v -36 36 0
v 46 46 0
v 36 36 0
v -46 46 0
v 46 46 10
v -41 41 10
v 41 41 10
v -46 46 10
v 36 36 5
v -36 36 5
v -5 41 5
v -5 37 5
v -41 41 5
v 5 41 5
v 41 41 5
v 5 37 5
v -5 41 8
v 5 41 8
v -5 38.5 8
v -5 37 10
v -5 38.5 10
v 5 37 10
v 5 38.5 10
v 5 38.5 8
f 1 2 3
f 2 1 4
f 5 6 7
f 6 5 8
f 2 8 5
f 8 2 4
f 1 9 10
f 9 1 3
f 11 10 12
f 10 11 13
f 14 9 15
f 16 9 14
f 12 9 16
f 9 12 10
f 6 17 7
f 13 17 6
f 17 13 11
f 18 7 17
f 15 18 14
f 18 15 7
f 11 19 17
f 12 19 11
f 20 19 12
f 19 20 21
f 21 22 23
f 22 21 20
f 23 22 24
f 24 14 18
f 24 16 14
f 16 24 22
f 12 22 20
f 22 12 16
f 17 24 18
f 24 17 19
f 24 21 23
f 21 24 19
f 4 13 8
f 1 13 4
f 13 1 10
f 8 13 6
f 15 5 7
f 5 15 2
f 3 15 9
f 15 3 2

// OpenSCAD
// file: local_modules/lcd.scad
LCD_X=76;
LCD_Y=1.5;
LCD_Z=138;
LCD_DISP_X=LCD_X - 1.5 * 2;
LCD_DISP_Z_OFFSET_FROM_BOTTOM=6;
LCD_DISP_Z=LCD_Z-LCD_DISP_Z_OFFSET_FROM_BOTTOM - 1.5;

module lcd(margin=0, draw_display_region=false) {
  translate([0, 0, LCD_Z/2]){
    cube(size=[LCD_X+margin, LCD_Y+margin, LCD_Z+margin], center=true);

    if(draw_display_region){
      translate([0, 0, -(LCD_Z - LCD_DISP_Z)/2 + LCD_DISP_Z_OFFSET_FROM_BOTTOM]) 
      color("green", 0.5)
      cube(size=[LCD_DISP_X, LCD_Y, LCD_DISP_Z], center=true);
    }
  }
}
// file: scad-utils/morphology.scad
// Copyright (c) 2013 Oskar Linde. All rights reserved.
// License: BSD
//
// This library contains basic 2D morphology operations
//
// outset(d=1)            - creates a polygon at an offset d outside a 2D shape
// inset(d=1)             - creates a polygon at an offset d inside a 2D shape
// fillet(r=1)            - adds fillets of radius r to all concave corners of a 2D shape
// rounding(r=1)          - adds rounding to all convex corners of a 2D shape
// shell(d,center=false)  - makes a shell of width d along the edge of a 2D shape
//                        - positive values of d places the shell on the outside
//                        - negative values of d places the shell on the inside
//                        - center=true and positive d places the shell centered on the edge

module outset(d=1) {
	// Bug workaround for older OpenSCAD versions
	if (version_num() < 20130424) render() outset_extruded(d) children();
	else minkowski() {
		circle(r=d);
		children();
	}
}

module outset_extruded(d=1) {
   projection(cut=true) minkowski() {
        cylinder(r=d);
        linear_extrude(center=true) children();
   }
}

module inset(d=1) {
	 render() inverse() outset(d=d) inverse() children();
}

module fillet(r=1) {
	inset(d=r) render() outset(d=r) children();
}

module rounding(r=1) {
	outset(d=r) inset(d=r) children();
}

module shell(d,center=false) {
	if (center && d > 0) {
		difference() {
			outset(d=d/2) children();
			inset(d=d/2) children();
		}
	}
	if (!center && d > 0) {
		difference() {
			outset(d=d) children();
			children();
		}
	}
	if (!center && d < 0) {
		difference() {
			children();
			inset(d=-d) children();
		}
	}
	if (d == 0) children();
}


// Below are for internal use only

module inverse() {
	difference() {
		square(1e5,center=true);
		children();
	}
}


// TEST CODE

use <mirror.scad>

module arrow(l=1,w=.6,t=0.15) {
	mirror_y() polygon([[0,0],[l,0],[l-w/2,w/2],[l-w/2-sqrt(2)*t,w/2],[l-t/2-sqrt(2)*t,t/2],[0,t/2]]);
}

module shape() {
	polygon([[0,0],[1,0],[1.5,1],[2.5,1],[2,-1],[0,-1]]);
}

if(0) assign($fn=32) {

	for (p = [0:10*3-1]) assign(o=floor(p/3)) {
		translate([(p%3)*2.5,-o*3]) {
			//%if (p % 3 == 1) translate([0,0,1]) shape();
			if (p % 3 == 0) shape();
			if (p % 3 == 1) translate([0.6,0]) arrow();
			if (p % 3 == 2) {
				if (o == 0) inset(d=0.3) shape();
				if (o == 1) outset(d=0.3) shape();
				if (o == 2) rounding(r=0.3) shape();
				if (o == 3) fillet(r=0.3) shape();
				if (o == 4) shell(d=0.3) shape();
				if (o == 5) shell(d=-0.3) shape();
				if (o == 6) shell(d=0.3,center=true) shape();
				if (o == 7) rounding(r=0.3) fillet(r=0.3) shape();
				if (o == 8) shell(d=0.3,center=true) fillet(r=0.3) rounding(r=0.3) shape();
				if (o == 9) shell(d=-0.3) fillet(r=0.3) rounding(r=0.3) shape();
			}
		}
	}
}
// file: scad-utils/mirror.scad
// Copyright (c) 2013 Oskar Linde. All rights reserved.
// License: BSD
//
// This library contains simple mirroring functions
//
// mirror_x()
// mirror_y()
// mirror_z()


module mirror_x() {
  union() {
    child();
    scale([-1,1,1]) child();
  }
}

module mirror_y() {
  union() {
    child();
    scale([1,-1,1]) child();
  }
}

module mirror_z() {
  union() {
    child();
    scale([1,1,-1]) child();
  }
}
// file: _kagedourou_top.scad
include <scad-utils/mirror.scad>
include <scad-utils/morphology.scad>

include <./local_modules/lcd.scad>


module lcd_for_top(){
  translate([0, KD_TOP_Y/2 - LCD_Y/2 - (KD_FRAME_INNER_T + 0.5), LCD_Z + KD_FRAME_T - 2]) 
  rotate([180, 0, 0]) 
  lcd(draw_display_region=true);
}

KD_FRAME_T=10;
KD_FRAME_INNER_T=5;

KD_TOP_X=LCD_X-2*2+KD_FRAME_T*2;
KD_TOP_Y=KD_TOP_X;
echo(str("KD_TOP_X=", KD_TOP_X));
echo(str("KD_TOP_Y=", KD_TOP_Y));

KD_TOP_DISP_HOLDER_X=10;
KD_TOP_DISP_HOLDER_Y=4*2;

module kagedourou_top_display_holder(args) {
  translate([0, KD_TOP_Y/2 - KD_FRAME_INNER_T, 0]){
    difference() {

      linear_extrude(height=KD_FRAME_T, center=!true, convexity=10, twist=0)
      square(size=[KD_TOP_DISP_HOLDER_X, KD_TOP_DISP_HOLDER_Y], center=true);

      translate([0, 0, KD_FRAME_T - 2]) 
      linear_extrude(height=KD_FRAME_T, center=!true, convexity=10, twist=0)
      square(size=[KD_TOP_DISP_HOLDER_X, (LCD_Y + 1) * 2], center=true);
    }

  }
}

module kagedourou_top() {
  difference() {
    linear_extrude(height=KD_FRAME_T, center=!true, convexity=10, twist=0)
    difference(){
      square(size=[KD_TOP_X, KD_TOP_Y], center=true);

      // top window
      offset(delta=-KD_FRAME_T)
      square(size=[KD_TOP_X, KD_TOP_Y], center=true);
    }

    translate([0, 0, 5]) 
    linear_extrude(height=KD_FRAME_T, center=!true, convexity=10, twist=0)
    offset(delta=(KD_FRAME_T - KD_FRAME_INNER_T))
    offset(delta=-KD_FRAME_T)
    square(size=[KD_TOP_X, KD_TOP_Y], center=true);
  }

  kagedourou_top_display_holder();
}

// kagedourou_top();
// main file
include <./_kagedourou_top.scad>

$fn=50;

%
lcd_for_top();

intersection(){
  kagedourou_top();

  rotate([0, 0, 45])
  cube(size=[KD_TOP_X*2, KD_TOP_Y*2, KD_FRAME_T*2], center=false);
}
